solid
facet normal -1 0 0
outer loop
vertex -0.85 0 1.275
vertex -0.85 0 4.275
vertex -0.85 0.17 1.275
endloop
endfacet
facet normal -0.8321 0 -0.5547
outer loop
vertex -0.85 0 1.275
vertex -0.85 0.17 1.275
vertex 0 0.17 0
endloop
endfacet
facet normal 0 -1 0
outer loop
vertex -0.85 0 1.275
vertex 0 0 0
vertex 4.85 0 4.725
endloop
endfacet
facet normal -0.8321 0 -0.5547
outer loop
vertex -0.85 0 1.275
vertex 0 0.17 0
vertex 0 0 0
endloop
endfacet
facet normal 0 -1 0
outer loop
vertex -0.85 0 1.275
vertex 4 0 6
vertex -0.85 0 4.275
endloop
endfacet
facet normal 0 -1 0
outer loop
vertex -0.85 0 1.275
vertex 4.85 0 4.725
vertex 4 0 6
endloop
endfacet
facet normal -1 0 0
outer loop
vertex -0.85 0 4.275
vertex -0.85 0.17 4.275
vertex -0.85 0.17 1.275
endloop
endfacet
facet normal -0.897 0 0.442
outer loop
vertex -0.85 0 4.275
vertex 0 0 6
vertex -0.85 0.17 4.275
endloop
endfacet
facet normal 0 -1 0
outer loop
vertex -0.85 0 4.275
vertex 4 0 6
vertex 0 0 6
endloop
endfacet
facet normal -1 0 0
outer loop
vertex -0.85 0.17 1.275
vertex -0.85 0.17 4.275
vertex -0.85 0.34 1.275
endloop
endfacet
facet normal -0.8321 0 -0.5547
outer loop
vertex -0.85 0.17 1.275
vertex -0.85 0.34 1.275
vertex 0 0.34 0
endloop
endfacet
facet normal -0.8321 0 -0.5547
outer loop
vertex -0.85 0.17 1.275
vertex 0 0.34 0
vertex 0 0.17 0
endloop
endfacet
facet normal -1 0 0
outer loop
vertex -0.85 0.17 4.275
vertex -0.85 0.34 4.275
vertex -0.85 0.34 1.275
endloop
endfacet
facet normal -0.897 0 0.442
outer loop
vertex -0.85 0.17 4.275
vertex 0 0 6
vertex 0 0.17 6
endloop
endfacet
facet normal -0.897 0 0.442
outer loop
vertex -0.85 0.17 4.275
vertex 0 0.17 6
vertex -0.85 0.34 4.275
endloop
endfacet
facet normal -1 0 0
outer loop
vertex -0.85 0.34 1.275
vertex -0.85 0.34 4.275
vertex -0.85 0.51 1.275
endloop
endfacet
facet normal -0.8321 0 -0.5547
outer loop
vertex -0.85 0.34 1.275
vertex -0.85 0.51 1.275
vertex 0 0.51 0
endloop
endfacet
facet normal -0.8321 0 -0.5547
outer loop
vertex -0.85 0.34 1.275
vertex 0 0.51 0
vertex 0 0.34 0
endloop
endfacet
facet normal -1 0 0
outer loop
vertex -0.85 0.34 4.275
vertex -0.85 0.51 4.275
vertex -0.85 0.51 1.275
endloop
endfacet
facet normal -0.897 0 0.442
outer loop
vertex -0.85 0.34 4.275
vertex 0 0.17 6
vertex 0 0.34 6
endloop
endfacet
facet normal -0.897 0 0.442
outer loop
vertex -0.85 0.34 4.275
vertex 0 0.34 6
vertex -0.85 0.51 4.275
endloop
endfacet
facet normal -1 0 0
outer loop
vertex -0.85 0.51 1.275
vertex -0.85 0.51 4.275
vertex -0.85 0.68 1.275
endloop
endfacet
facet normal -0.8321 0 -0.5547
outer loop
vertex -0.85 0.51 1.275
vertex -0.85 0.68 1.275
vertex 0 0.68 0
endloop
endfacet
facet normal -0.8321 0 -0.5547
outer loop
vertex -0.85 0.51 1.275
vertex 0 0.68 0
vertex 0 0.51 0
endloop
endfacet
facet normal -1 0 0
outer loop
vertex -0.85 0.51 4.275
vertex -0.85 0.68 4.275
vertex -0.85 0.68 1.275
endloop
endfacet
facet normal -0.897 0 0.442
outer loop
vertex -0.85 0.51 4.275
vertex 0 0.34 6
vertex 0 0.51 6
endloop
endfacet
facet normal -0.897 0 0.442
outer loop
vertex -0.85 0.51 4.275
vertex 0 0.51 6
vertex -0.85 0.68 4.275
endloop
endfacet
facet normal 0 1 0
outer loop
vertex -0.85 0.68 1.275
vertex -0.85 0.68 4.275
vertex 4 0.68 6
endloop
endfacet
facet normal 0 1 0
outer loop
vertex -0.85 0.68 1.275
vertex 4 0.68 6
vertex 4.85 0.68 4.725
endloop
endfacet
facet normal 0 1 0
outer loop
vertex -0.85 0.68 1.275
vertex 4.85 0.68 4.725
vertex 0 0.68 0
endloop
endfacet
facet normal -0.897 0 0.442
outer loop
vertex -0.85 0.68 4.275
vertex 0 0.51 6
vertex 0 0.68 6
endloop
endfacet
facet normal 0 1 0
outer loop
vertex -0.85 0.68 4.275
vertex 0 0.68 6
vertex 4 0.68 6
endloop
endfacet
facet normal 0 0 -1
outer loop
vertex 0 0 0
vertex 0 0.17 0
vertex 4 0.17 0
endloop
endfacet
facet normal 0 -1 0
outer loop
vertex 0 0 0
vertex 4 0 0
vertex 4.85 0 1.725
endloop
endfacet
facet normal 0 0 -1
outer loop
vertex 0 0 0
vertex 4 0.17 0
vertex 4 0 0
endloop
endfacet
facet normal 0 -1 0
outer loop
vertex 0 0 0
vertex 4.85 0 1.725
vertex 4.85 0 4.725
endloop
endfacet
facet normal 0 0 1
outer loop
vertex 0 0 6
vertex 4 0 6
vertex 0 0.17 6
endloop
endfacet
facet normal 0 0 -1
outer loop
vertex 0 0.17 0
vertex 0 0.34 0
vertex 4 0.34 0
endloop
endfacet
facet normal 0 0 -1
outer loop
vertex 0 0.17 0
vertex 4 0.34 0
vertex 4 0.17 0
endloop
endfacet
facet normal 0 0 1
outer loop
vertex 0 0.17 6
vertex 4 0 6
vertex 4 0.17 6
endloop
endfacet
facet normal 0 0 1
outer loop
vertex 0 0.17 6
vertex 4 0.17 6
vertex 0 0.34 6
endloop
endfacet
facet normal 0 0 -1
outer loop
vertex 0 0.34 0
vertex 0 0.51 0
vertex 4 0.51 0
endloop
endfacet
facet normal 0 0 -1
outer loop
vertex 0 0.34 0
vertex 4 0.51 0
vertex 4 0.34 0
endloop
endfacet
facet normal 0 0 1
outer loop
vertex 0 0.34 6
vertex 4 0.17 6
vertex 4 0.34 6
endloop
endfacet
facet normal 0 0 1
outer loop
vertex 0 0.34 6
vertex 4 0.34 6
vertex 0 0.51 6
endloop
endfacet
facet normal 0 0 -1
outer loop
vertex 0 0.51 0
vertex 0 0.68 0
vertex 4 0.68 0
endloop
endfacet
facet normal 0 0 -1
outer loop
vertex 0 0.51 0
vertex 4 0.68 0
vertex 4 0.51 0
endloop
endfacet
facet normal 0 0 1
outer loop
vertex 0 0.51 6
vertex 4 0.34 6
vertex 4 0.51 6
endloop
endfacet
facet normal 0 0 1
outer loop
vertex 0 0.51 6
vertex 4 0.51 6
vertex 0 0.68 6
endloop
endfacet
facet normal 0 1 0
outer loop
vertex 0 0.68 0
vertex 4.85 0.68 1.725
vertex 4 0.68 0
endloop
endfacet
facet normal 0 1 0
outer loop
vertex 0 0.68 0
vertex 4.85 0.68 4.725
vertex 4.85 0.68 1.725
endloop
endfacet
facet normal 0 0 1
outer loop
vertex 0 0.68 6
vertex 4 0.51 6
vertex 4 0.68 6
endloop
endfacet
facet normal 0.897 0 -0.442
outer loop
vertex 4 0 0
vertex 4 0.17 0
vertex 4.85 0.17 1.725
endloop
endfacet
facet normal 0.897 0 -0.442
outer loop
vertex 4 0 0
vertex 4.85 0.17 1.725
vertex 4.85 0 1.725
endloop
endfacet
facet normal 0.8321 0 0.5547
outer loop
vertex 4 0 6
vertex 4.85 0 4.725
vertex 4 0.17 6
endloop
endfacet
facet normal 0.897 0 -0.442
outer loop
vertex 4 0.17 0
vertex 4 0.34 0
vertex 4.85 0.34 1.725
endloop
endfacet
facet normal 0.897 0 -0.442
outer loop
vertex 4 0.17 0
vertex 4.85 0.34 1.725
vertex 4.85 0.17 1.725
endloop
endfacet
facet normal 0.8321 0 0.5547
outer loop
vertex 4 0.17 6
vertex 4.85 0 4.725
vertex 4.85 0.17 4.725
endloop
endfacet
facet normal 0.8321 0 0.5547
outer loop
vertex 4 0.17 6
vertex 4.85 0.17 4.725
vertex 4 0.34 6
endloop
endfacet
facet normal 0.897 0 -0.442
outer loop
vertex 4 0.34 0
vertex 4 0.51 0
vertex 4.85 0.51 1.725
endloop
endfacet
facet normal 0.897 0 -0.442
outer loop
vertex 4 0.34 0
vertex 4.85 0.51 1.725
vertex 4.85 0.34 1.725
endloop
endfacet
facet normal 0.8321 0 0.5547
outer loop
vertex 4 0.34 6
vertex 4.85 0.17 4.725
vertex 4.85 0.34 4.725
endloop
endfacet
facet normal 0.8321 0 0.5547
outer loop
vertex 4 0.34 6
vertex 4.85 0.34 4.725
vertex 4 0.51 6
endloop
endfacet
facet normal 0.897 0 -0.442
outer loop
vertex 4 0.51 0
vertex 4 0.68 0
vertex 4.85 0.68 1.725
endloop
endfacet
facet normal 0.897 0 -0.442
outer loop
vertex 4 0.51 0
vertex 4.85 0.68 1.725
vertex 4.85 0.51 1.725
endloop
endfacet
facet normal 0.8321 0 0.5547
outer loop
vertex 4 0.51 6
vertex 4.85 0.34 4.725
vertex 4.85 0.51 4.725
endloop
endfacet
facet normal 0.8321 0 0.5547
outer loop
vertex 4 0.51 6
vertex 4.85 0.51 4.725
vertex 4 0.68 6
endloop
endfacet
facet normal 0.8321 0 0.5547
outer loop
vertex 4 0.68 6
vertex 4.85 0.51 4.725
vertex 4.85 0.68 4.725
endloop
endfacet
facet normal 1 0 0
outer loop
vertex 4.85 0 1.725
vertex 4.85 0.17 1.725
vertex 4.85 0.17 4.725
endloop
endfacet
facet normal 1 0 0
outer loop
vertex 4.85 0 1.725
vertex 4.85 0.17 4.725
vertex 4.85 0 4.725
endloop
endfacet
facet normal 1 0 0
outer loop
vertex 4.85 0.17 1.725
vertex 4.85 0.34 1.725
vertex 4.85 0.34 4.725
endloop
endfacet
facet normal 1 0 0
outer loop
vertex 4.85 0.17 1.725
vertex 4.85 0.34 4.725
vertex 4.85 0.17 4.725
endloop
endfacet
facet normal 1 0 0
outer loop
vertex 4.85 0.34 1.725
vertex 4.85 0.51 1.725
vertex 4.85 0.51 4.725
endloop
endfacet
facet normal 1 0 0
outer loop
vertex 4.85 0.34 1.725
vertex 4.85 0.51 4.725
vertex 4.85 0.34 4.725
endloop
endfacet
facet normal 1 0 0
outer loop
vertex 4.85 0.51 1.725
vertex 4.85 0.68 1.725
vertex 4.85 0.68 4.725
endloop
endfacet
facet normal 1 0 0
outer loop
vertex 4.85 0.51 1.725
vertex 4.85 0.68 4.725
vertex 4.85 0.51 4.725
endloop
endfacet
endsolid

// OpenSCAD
// Start: lazy_union
default_5_default_5();
// End: lazy_union

// Modules.

// 'PartMaterial undef-default - default 5.0'
module default_5_default_5() {
  // 'None : _combine_solids_and_holes'
  union() {
    // 'default : _combine_solids_and_holes'
    union() {
      // 'centre_plate'
      multmatrix(m=[[-0.0, -1.0, -0.0, 2.0], [0.0, 0.0, 1.0, 0.0], [-1.0, -0.0, -0.0, 3.0], [0.0, 0.0, 0.0, 1.0]]) {
        // 'centre_plate : _combine_solids_and_holes'
        union() {
          // 'centre_plate'
          linear_extrude(height=0.6800000000000002, twist=0.0, slices=4, scale=[1.0, 1.0], $fn=64) {
            polygon(points=[[3.0, 2.0], [3.0, -2.0], [1.275, -2.85], [-1.725, -2.85], [-3.0, -2.0], [-3.0, 2.0], [-1.275, 2.85], [1.725, 2.85]]);
          }
        }
      }
    }
  }
} // end module default_5_default_5
